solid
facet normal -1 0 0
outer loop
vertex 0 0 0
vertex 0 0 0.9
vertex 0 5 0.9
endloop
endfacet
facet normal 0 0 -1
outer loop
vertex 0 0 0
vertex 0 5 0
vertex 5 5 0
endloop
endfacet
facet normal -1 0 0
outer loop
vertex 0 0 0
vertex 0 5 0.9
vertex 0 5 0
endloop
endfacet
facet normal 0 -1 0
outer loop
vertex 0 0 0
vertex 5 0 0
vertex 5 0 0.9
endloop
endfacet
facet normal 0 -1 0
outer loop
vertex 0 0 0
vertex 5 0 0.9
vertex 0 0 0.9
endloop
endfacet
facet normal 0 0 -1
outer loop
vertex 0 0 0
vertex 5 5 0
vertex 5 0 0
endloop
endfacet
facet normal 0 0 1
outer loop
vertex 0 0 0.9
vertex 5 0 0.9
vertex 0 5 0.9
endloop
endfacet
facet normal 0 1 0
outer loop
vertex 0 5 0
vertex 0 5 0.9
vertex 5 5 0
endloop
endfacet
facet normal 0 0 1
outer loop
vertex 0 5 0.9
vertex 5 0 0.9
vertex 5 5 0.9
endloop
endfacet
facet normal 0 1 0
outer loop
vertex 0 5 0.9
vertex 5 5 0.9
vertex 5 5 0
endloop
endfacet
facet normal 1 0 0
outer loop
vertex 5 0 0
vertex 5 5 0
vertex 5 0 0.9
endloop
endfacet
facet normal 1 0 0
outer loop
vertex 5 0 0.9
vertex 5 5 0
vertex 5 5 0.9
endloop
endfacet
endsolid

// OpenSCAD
/* Warning, this is a very basic generator with a lot of approximation 
input data : [VQFN, D2C, 5x5x0.9mm, 20, , A, C04-25518A]
generated by com.zoubworld.electronics.cad.model3d.Basic
Date : Sun Feb 15 10:50:49 CET 2026
*/

//body
color("black")
translate([0,0,0])
cube([5.0,5.0,0.9], center=false);
